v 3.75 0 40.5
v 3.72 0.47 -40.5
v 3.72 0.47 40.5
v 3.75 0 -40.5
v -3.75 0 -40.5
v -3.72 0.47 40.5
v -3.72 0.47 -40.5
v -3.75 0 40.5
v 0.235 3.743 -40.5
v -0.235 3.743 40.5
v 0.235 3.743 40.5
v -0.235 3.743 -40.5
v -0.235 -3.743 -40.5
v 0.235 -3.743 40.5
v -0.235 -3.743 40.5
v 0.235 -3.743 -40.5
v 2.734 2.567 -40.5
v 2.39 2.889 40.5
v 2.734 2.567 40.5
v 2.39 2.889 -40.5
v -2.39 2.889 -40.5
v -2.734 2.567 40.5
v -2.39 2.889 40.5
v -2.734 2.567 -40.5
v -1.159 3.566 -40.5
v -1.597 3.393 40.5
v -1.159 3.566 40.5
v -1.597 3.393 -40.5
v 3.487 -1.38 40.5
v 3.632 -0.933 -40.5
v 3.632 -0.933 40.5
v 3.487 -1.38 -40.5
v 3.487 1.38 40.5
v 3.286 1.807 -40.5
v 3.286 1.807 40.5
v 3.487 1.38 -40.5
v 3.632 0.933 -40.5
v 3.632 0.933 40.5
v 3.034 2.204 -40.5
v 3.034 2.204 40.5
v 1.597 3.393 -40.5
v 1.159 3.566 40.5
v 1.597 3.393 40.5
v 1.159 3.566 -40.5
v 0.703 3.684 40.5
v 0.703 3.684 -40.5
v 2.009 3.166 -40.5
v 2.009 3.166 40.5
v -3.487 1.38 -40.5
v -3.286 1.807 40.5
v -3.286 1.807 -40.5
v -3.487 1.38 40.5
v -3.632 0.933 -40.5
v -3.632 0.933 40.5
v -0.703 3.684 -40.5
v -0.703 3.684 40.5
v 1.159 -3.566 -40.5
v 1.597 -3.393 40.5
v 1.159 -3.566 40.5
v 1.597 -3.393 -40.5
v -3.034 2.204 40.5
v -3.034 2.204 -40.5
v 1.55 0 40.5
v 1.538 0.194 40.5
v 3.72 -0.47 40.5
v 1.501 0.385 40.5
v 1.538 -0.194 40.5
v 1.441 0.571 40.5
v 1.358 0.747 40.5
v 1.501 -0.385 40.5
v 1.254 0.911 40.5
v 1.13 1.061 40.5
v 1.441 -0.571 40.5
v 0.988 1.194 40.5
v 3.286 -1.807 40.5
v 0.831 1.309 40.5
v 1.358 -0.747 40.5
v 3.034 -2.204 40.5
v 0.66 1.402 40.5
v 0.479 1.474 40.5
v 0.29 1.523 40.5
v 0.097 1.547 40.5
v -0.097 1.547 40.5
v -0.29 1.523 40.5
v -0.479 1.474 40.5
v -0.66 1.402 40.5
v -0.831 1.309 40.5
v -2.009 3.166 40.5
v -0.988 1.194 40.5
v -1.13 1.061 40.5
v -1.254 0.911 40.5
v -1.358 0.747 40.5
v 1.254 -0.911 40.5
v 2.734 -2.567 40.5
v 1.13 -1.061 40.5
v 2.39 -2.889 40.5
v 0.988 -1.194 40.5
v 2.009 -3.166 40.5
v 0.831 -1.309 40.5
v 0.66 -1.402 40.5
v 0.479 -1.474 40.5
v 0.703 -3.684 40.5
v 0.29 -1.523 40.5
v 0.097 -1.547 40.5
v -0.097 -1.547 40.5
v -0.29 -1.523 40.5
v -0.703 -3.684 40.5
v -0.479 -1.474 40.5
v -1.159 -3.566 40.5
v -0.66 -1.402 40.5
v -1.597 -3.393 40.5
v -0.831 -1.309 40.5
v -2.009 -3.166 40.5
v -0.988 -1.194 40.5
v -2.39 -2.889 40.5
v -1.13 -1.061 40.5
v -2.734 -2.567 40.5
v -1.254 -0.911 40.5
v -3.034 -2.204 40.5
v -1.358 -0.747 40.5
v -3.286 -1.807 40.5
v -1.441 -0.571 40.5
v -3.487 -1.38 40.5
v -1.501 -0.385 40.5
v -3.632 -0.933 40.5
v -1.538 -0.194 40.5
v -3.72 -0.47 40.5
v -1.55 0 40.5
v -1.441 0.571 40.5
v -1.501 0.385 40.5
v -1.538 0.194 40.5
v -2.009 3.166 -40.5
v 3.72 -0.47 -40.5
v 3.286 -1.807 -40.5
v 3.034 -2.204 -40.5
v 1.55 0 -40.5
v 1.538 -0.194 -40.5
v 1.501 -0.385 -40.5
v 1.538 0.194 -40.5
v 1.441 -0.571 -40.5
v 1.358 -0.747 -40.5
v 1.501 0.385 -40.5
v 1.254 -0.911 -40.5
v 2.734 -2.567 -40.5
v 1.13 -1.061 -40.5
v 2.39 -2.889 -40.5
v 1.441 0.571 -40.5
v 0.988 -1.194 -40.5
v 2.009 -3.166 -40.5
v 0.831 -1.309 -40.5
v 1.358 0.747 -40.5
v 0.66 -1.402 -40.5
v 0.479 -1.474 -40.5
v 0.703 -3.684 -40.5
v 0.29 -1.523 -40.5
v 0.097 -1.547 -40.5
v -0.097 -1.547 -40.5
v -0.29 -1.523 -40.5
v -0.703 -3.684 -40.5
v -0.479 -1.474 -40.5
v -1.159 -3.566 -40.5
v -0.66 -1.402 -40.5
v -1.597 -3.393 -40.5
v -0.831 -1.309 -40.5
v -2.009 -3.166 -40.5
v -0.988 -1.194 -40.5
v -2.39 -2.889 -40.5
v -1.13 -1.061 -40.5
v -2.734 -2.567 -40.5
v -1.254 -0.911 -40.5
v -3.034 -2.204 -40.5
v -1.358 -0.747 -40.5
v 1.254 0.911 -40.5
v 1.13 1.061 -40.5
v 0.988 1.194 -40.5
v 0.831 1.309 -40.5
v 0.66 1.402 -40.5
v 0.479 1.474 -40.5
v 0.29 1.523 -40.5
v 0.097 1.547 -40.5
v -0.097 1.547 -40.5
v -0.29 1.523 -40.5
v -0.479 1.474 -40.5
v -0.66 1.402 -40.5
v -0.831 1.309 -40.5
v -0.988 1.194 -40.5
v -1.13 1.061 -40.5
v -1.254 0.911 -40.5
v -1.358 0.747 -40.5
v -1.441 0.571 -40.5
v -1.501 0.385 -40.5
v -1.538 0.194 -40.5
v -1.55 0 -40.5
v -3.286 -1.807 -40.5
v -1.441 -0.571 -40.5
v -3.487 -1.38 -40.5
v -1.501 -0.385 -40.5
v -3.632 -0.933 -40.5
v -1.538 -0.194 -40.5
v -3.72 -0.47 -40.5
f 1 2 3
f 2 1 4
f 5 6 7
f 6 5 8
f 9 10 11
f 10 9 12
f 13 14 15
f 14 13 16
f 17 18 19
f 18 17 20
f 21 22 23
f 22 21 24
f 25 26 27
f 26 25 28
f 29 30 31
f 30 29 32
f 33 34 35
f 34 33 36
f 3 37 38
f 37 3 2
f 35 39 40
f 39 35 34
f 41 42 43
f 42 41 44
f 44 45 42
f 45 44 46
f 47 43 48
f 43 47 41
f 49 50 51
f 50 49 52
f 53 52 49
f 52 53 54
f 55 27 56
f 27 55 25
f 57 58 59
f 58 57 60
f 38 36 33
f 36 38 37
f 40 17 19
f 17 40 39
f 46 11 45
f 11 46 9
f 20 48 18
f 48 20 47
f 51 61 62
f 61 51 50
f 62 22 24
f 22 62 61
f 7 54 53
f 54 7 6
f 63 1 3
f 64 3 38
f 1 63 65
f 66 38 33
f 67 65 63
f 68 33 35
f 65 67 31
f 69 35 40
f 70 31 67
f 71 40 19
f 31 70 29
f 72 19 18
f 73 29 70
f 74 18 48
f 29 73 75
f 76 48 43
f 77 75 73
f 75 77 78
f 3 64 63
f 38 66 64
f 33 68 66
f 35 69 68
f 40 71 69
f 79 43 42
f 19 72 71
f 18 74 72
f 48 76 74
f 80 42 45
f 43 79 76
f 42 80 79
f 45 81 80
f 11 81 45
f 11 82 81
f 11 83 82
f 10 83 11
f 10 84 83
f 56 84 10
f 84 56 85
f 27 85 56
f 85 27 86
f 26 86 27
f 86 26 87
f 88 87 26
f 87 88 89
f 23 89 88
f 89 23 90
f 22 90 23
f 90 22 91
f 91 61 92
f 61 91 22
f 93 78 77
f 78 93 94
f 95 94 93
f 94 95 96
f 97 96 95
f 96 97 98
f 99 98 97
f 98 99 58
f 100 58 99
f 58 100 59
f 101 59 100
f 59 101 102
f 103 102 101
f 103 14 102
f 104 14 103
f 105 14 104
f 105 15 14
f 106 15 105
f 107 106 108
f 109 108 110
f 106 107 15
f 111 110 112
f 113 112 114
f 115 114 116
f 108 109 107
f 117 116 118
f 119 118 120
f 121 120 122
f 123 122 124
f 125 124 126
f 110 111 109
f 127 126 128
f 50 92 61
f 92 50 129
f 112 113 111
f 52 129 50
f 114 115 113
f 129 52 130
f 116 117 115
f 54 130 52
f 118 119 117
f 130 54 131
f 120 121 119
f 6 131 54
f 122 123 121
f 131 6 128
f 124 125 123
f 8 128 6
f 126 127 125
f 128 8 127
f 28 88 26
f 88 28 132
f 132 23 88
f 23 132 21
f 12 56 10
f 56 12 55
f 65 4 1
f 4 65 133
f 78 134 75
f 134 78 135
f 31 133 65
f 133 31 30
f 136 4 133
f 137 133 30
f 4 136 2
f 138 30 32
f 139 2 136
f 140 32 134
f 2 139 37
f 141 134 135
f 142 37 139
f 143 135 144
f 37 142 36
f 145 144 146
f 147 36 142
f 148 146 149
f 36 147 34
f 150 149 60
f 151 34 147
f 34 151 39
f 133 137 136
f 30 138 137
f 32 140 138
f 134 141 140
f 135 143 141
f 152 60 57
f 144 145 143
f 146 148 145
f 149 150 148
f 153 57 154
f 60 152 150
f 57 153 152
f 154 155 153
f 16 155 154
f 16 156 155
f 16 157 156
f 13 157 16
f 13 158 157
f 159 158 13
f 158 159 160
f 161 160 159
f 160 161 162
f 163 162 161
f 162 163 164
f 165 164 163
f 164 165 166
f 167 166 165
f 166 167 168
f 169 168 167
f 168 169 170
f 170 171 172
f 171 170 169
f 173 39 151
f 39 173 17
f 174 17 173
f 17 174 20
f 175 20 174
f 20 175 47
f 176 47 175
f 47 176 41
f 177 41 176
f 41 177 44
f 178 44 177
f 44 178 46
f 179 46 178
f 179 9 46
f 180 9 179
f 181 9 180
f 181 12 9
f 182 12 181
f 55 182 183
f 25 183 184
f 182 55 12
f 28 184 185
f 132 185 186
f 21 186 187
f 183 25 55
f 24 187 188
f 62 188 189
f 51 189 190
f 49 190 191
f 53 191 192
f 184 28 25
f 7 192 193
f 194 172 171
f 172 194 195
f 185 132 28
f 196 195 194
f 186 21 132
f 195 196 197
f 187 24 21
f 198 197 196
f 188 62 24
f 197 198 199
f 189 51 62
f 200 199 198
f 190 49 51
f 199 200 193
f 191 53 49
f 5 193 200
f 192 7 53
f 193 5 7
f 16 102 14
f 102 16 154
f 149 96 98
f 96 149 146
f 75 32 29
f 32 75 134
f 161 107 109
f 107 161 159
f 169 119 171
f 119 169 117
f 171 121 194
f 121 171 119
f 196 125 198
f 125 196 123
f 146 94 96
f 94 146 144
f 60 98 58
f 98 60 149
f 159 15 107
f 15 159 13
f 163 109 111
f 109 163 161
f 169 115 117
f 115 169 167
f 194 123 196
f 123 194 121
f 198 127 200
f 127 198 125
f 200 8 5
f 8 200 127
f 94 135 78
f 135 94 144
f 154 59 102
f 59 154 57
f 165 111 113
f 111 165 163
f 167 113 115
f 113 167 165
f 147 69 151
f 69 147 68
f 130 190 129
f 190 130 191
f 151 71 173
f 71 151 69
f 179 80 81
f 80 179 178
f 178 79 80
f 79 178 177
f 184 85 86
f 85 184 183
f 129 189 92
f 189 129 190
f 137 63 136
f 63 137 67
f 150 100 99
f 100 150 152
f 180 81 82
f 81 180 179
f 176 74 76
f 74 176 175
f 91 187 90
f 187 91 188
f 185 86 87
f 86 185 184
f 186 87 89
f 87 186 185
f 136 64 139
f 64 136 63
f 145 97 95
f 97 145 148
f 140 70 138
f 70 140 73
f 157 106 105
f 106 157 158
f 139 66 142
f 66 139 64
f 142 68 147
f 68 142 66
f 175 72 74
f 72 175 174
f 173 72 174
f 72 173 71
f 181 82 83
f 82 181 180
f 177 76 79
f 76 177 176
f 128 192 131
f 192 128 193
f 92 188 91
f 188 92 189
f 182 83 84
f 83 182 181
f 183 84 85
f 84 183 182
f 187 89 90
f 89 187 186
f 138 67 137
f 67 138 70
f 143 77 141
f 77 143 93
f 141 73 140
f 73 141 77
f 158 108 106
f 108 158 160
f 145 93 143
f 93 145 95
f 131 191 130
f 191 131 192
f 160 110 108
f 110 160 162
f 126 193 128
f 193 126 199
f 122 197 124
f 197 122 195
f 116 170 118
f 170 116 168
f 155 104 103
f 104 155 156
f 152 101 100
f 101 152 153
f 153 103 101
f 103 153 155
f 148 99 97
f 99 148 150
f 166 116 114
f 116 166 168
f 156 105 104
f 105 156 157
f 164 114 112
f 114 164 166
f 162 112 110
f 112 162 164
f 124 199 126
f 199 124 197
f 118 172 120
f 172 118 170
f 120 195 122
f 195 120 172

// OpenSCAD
$fn = 50;


difference() {
	union() {
		translate(v = [0, 0, -40.5000000000]) {
			cylinder(h = 81, r = 3.7500000000);
		}
	}
	union() {
		translate(v = [0, 0, -100.0000000000]) {
			cylinder(h = 200, r = 1.5500000000);
		}
	}
}
